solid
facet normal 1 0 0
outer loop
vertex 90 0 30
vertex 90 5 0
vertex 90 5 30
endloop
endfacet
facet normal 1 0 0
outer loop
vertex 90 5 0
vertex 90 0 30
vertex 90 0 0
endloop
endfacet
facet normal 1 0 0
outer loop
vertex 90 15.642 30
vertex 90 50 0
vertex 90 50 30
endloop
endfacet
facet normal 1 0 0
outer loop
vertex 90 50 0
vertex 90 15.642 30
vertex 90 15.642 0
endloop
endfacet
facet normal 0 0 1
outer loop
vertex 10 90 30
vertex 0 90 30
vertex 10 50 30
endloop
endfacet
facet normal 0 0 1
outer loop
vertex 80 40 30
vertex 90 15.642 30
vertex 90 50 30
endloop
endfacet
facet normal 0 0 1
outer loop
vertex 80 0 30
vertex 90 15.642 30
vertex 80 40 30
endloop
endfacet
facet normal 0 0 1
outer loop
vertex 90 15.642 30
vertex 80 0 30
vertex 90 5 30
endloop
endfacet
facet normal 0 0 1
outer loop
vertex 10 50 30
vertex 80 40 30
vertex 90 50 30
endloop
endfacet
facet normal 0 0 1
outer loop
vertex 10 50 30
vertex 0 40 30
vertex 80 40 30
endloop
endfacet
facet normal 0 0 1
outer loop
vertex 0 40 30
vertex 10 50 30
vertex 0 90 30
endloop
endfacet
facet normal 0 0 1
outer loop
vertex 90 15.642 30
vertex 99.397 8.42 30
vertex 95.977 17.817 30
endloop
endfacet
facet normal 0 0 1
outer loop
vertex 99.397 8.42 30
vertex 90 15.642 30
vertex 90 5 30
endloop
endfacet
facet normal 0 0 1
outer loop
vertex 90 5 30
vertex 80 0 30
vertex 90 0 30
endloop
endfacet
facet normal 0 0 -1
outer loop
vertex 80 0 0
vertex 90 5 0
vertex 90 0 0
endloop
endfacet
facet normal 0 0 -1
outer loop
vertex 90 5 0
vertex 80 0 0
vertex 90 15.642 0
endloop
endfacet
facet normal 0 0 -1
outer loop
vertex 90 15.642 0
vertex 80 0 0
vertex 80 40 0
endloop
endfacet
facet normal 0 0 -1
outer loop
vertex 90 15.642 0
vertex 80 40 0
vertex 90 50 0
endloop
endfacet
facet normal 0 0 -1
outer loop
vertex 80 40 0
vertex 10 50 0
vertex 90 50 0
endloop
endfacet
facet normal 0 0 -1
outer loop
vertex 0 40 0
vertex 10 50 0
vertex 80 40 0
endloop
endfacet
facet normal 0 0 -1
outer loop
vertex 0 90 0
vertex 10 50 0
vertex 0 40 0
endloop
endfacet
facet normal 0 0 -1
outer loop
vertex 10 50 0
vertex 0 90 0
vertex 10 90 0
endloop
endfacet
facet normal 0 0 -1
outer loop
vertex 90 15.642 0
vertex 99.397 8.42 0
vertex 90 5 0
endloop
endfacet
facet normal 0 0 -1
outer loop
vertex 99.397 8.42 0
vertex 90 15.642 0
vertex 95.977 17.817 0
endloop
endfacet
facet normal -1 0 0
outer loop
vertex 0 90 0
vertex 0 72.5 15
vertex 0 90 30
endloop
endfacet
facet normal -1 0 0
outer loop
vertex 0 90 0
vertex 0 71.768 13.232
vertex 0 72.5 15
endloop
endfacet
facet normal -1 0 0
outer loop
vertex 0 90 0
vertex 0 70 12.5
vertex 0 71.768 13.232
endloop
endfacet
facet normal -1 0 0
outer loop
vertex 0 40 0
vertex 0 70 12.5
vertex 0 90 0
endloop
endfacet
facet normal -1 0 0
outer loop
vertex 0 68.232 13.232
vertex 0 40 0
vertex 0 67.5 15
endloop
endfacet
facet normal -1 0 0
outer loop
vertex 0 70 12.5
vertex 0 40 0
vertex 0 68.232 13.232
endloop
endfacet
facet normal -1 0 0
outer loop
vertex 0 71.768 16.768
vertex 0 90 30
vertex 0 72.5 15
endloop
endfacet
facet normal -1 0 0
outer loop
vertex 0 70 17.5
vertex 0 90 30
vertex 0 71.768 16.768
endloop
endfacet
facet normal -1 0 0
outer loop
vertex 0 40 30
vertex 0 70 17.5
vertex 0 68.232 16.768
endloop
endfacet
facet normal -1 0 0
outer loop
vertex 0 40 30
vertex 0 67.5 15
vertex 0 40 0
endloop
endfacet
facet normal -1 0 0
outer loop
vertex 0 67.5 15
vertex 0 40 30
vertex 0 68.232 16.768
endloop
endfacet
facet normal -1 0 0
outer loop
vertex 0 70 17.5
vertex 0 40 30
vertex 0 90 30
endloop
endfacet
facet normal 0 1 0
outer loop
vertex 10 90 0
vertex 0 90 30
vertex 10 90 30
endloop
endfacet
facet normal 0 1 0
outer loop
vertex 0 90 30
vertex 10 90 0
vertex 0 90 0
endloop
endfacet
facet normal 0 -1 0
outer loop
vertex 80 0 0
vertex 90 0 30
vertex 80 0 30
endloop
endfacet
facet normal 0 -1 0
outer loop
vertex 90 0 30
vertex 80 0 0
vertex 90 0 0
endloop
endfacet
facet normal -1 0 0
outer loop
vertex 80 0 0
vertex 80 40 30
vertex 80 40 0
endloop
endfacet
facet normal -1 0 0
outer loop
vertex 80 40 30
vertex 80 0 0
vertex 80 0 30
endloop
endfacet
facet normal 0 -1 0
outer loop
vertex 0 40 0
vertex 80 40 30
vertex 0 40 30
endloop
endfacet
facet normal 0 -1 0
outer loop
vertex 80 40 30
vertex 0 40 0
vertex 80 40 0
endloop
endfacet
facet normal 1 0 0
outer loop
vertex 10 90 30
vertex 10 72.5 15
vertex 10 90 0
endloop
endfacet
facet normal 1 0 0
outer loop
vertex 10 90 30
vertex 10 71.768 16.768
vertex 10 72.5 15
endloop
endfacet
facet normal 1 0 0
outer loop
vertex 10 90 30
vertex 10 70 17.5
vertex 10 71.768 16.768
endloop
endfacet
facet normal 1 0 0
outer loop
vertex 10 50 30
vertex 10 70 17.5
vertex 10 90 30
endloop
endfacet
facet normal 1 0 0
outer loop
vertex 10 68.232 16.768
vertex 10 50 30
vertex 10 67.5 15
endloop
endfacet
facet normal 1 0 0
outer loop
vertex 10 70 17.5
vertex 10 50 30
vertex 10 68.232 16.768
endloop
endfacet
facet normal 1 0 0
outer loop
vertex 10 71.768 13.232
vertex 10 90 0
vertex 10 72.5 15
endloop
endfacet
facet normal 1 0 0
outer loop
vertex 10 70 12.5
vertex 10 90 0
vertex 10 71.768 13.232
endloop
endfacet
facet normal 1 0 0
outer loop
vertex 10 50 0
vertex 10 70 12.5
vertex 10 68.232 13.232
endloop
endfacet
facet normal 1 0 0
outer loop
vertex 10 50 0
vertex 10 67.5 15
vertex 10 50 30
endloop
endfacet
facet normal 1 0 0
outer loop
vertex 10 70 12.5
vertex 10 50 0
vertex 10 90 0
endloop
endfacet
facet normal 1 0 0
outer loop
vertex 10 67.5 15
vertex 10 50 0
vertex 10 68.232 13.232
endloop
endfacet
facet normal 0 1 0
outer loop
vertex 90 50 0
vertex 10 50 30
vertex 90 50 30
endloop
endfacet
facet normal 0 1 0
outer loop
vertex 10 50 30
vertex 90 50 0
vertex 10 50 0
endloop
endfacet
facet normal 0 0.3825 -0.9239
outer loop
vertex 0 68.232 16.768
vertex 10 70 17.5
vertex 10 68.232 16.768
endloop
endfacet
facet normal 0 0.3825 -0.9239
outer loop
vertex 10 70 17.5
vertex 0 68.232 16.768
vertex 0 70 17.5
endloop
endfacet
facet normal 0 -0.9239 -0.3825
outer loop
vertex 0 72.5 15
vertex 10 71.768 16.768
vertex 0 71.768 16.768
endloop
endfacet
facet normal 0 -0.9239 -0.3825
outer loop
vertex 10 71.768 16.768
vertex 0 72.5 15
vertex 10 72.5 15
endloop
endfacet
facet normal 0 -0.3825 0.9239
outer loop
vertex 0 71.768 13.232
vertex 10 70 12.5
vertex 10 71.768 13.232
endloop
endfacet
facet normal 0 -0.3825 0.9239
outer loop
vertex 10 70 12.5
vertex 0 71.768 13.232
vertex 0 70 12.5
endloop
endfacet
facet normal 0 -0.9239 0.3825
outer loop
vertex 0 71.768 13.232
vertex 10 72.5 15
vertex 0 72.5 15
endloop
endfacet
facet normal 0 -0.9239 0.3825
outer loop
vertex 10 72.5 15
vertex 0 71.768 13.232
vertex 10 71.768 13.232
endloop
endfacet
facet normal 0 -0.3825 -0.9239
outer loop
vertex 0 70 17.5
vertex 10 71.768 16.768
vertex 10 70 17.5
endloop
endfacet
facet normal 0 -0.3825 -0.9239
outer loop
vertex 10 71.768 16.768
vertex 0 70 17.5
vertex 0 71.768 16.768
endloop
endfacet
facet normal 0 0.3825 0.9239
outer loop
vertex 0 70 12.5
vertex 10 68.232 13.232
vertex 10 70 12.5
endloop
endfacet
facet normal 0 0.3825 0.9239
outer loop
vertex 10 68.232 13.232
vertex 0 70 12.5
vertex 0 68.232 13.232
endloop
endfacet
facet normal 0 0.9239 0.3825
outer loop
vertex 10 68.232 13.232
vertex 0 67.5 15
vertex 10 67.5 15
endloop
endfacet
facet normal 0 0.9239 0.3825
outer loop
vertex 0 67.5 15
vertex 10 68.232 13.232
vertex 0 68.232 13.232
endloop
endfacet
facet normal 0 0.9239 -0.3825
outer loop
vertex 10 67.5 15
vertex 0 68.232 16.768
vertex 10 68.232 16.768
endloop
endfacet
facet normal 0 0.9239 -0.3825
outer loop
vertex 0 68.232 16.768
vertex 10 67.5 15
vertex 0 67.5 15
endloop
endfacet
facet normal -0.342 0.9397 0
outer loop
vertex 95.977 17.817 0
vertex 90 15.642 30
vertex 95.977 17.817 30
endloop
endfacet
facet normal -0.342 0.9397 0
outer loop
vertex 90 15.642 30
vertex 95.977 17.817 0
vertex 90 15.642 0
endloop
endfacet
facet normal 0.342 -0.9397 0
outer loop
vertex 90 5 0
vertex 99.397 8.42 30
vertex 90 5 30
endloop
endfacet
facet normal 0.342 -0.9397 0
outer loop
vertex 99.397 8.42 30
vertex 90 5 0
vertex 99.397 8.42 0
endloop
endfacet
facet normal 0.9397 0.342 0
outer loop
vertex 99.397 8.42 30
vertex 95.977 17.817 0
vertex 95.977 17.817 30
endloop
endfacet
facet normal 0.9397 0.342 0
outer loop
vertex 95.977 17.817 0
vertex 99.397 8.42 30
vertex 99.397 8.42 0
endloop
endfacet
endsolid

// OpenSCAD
difference(){
    cube([90,90,30]);
    
    cube([80,40,30]);
    
    translate([10,50,0]){
        cube([80,40,30]);
    }
    
    translate([0,70,15]){
        rotate([0,90,0]){
            cylinder(r=5/2,h=10);
        }
    }
}

translate([90,5,0]){
    rotate([0,0,20]){
        cube([10,10,30]);
    }
}
